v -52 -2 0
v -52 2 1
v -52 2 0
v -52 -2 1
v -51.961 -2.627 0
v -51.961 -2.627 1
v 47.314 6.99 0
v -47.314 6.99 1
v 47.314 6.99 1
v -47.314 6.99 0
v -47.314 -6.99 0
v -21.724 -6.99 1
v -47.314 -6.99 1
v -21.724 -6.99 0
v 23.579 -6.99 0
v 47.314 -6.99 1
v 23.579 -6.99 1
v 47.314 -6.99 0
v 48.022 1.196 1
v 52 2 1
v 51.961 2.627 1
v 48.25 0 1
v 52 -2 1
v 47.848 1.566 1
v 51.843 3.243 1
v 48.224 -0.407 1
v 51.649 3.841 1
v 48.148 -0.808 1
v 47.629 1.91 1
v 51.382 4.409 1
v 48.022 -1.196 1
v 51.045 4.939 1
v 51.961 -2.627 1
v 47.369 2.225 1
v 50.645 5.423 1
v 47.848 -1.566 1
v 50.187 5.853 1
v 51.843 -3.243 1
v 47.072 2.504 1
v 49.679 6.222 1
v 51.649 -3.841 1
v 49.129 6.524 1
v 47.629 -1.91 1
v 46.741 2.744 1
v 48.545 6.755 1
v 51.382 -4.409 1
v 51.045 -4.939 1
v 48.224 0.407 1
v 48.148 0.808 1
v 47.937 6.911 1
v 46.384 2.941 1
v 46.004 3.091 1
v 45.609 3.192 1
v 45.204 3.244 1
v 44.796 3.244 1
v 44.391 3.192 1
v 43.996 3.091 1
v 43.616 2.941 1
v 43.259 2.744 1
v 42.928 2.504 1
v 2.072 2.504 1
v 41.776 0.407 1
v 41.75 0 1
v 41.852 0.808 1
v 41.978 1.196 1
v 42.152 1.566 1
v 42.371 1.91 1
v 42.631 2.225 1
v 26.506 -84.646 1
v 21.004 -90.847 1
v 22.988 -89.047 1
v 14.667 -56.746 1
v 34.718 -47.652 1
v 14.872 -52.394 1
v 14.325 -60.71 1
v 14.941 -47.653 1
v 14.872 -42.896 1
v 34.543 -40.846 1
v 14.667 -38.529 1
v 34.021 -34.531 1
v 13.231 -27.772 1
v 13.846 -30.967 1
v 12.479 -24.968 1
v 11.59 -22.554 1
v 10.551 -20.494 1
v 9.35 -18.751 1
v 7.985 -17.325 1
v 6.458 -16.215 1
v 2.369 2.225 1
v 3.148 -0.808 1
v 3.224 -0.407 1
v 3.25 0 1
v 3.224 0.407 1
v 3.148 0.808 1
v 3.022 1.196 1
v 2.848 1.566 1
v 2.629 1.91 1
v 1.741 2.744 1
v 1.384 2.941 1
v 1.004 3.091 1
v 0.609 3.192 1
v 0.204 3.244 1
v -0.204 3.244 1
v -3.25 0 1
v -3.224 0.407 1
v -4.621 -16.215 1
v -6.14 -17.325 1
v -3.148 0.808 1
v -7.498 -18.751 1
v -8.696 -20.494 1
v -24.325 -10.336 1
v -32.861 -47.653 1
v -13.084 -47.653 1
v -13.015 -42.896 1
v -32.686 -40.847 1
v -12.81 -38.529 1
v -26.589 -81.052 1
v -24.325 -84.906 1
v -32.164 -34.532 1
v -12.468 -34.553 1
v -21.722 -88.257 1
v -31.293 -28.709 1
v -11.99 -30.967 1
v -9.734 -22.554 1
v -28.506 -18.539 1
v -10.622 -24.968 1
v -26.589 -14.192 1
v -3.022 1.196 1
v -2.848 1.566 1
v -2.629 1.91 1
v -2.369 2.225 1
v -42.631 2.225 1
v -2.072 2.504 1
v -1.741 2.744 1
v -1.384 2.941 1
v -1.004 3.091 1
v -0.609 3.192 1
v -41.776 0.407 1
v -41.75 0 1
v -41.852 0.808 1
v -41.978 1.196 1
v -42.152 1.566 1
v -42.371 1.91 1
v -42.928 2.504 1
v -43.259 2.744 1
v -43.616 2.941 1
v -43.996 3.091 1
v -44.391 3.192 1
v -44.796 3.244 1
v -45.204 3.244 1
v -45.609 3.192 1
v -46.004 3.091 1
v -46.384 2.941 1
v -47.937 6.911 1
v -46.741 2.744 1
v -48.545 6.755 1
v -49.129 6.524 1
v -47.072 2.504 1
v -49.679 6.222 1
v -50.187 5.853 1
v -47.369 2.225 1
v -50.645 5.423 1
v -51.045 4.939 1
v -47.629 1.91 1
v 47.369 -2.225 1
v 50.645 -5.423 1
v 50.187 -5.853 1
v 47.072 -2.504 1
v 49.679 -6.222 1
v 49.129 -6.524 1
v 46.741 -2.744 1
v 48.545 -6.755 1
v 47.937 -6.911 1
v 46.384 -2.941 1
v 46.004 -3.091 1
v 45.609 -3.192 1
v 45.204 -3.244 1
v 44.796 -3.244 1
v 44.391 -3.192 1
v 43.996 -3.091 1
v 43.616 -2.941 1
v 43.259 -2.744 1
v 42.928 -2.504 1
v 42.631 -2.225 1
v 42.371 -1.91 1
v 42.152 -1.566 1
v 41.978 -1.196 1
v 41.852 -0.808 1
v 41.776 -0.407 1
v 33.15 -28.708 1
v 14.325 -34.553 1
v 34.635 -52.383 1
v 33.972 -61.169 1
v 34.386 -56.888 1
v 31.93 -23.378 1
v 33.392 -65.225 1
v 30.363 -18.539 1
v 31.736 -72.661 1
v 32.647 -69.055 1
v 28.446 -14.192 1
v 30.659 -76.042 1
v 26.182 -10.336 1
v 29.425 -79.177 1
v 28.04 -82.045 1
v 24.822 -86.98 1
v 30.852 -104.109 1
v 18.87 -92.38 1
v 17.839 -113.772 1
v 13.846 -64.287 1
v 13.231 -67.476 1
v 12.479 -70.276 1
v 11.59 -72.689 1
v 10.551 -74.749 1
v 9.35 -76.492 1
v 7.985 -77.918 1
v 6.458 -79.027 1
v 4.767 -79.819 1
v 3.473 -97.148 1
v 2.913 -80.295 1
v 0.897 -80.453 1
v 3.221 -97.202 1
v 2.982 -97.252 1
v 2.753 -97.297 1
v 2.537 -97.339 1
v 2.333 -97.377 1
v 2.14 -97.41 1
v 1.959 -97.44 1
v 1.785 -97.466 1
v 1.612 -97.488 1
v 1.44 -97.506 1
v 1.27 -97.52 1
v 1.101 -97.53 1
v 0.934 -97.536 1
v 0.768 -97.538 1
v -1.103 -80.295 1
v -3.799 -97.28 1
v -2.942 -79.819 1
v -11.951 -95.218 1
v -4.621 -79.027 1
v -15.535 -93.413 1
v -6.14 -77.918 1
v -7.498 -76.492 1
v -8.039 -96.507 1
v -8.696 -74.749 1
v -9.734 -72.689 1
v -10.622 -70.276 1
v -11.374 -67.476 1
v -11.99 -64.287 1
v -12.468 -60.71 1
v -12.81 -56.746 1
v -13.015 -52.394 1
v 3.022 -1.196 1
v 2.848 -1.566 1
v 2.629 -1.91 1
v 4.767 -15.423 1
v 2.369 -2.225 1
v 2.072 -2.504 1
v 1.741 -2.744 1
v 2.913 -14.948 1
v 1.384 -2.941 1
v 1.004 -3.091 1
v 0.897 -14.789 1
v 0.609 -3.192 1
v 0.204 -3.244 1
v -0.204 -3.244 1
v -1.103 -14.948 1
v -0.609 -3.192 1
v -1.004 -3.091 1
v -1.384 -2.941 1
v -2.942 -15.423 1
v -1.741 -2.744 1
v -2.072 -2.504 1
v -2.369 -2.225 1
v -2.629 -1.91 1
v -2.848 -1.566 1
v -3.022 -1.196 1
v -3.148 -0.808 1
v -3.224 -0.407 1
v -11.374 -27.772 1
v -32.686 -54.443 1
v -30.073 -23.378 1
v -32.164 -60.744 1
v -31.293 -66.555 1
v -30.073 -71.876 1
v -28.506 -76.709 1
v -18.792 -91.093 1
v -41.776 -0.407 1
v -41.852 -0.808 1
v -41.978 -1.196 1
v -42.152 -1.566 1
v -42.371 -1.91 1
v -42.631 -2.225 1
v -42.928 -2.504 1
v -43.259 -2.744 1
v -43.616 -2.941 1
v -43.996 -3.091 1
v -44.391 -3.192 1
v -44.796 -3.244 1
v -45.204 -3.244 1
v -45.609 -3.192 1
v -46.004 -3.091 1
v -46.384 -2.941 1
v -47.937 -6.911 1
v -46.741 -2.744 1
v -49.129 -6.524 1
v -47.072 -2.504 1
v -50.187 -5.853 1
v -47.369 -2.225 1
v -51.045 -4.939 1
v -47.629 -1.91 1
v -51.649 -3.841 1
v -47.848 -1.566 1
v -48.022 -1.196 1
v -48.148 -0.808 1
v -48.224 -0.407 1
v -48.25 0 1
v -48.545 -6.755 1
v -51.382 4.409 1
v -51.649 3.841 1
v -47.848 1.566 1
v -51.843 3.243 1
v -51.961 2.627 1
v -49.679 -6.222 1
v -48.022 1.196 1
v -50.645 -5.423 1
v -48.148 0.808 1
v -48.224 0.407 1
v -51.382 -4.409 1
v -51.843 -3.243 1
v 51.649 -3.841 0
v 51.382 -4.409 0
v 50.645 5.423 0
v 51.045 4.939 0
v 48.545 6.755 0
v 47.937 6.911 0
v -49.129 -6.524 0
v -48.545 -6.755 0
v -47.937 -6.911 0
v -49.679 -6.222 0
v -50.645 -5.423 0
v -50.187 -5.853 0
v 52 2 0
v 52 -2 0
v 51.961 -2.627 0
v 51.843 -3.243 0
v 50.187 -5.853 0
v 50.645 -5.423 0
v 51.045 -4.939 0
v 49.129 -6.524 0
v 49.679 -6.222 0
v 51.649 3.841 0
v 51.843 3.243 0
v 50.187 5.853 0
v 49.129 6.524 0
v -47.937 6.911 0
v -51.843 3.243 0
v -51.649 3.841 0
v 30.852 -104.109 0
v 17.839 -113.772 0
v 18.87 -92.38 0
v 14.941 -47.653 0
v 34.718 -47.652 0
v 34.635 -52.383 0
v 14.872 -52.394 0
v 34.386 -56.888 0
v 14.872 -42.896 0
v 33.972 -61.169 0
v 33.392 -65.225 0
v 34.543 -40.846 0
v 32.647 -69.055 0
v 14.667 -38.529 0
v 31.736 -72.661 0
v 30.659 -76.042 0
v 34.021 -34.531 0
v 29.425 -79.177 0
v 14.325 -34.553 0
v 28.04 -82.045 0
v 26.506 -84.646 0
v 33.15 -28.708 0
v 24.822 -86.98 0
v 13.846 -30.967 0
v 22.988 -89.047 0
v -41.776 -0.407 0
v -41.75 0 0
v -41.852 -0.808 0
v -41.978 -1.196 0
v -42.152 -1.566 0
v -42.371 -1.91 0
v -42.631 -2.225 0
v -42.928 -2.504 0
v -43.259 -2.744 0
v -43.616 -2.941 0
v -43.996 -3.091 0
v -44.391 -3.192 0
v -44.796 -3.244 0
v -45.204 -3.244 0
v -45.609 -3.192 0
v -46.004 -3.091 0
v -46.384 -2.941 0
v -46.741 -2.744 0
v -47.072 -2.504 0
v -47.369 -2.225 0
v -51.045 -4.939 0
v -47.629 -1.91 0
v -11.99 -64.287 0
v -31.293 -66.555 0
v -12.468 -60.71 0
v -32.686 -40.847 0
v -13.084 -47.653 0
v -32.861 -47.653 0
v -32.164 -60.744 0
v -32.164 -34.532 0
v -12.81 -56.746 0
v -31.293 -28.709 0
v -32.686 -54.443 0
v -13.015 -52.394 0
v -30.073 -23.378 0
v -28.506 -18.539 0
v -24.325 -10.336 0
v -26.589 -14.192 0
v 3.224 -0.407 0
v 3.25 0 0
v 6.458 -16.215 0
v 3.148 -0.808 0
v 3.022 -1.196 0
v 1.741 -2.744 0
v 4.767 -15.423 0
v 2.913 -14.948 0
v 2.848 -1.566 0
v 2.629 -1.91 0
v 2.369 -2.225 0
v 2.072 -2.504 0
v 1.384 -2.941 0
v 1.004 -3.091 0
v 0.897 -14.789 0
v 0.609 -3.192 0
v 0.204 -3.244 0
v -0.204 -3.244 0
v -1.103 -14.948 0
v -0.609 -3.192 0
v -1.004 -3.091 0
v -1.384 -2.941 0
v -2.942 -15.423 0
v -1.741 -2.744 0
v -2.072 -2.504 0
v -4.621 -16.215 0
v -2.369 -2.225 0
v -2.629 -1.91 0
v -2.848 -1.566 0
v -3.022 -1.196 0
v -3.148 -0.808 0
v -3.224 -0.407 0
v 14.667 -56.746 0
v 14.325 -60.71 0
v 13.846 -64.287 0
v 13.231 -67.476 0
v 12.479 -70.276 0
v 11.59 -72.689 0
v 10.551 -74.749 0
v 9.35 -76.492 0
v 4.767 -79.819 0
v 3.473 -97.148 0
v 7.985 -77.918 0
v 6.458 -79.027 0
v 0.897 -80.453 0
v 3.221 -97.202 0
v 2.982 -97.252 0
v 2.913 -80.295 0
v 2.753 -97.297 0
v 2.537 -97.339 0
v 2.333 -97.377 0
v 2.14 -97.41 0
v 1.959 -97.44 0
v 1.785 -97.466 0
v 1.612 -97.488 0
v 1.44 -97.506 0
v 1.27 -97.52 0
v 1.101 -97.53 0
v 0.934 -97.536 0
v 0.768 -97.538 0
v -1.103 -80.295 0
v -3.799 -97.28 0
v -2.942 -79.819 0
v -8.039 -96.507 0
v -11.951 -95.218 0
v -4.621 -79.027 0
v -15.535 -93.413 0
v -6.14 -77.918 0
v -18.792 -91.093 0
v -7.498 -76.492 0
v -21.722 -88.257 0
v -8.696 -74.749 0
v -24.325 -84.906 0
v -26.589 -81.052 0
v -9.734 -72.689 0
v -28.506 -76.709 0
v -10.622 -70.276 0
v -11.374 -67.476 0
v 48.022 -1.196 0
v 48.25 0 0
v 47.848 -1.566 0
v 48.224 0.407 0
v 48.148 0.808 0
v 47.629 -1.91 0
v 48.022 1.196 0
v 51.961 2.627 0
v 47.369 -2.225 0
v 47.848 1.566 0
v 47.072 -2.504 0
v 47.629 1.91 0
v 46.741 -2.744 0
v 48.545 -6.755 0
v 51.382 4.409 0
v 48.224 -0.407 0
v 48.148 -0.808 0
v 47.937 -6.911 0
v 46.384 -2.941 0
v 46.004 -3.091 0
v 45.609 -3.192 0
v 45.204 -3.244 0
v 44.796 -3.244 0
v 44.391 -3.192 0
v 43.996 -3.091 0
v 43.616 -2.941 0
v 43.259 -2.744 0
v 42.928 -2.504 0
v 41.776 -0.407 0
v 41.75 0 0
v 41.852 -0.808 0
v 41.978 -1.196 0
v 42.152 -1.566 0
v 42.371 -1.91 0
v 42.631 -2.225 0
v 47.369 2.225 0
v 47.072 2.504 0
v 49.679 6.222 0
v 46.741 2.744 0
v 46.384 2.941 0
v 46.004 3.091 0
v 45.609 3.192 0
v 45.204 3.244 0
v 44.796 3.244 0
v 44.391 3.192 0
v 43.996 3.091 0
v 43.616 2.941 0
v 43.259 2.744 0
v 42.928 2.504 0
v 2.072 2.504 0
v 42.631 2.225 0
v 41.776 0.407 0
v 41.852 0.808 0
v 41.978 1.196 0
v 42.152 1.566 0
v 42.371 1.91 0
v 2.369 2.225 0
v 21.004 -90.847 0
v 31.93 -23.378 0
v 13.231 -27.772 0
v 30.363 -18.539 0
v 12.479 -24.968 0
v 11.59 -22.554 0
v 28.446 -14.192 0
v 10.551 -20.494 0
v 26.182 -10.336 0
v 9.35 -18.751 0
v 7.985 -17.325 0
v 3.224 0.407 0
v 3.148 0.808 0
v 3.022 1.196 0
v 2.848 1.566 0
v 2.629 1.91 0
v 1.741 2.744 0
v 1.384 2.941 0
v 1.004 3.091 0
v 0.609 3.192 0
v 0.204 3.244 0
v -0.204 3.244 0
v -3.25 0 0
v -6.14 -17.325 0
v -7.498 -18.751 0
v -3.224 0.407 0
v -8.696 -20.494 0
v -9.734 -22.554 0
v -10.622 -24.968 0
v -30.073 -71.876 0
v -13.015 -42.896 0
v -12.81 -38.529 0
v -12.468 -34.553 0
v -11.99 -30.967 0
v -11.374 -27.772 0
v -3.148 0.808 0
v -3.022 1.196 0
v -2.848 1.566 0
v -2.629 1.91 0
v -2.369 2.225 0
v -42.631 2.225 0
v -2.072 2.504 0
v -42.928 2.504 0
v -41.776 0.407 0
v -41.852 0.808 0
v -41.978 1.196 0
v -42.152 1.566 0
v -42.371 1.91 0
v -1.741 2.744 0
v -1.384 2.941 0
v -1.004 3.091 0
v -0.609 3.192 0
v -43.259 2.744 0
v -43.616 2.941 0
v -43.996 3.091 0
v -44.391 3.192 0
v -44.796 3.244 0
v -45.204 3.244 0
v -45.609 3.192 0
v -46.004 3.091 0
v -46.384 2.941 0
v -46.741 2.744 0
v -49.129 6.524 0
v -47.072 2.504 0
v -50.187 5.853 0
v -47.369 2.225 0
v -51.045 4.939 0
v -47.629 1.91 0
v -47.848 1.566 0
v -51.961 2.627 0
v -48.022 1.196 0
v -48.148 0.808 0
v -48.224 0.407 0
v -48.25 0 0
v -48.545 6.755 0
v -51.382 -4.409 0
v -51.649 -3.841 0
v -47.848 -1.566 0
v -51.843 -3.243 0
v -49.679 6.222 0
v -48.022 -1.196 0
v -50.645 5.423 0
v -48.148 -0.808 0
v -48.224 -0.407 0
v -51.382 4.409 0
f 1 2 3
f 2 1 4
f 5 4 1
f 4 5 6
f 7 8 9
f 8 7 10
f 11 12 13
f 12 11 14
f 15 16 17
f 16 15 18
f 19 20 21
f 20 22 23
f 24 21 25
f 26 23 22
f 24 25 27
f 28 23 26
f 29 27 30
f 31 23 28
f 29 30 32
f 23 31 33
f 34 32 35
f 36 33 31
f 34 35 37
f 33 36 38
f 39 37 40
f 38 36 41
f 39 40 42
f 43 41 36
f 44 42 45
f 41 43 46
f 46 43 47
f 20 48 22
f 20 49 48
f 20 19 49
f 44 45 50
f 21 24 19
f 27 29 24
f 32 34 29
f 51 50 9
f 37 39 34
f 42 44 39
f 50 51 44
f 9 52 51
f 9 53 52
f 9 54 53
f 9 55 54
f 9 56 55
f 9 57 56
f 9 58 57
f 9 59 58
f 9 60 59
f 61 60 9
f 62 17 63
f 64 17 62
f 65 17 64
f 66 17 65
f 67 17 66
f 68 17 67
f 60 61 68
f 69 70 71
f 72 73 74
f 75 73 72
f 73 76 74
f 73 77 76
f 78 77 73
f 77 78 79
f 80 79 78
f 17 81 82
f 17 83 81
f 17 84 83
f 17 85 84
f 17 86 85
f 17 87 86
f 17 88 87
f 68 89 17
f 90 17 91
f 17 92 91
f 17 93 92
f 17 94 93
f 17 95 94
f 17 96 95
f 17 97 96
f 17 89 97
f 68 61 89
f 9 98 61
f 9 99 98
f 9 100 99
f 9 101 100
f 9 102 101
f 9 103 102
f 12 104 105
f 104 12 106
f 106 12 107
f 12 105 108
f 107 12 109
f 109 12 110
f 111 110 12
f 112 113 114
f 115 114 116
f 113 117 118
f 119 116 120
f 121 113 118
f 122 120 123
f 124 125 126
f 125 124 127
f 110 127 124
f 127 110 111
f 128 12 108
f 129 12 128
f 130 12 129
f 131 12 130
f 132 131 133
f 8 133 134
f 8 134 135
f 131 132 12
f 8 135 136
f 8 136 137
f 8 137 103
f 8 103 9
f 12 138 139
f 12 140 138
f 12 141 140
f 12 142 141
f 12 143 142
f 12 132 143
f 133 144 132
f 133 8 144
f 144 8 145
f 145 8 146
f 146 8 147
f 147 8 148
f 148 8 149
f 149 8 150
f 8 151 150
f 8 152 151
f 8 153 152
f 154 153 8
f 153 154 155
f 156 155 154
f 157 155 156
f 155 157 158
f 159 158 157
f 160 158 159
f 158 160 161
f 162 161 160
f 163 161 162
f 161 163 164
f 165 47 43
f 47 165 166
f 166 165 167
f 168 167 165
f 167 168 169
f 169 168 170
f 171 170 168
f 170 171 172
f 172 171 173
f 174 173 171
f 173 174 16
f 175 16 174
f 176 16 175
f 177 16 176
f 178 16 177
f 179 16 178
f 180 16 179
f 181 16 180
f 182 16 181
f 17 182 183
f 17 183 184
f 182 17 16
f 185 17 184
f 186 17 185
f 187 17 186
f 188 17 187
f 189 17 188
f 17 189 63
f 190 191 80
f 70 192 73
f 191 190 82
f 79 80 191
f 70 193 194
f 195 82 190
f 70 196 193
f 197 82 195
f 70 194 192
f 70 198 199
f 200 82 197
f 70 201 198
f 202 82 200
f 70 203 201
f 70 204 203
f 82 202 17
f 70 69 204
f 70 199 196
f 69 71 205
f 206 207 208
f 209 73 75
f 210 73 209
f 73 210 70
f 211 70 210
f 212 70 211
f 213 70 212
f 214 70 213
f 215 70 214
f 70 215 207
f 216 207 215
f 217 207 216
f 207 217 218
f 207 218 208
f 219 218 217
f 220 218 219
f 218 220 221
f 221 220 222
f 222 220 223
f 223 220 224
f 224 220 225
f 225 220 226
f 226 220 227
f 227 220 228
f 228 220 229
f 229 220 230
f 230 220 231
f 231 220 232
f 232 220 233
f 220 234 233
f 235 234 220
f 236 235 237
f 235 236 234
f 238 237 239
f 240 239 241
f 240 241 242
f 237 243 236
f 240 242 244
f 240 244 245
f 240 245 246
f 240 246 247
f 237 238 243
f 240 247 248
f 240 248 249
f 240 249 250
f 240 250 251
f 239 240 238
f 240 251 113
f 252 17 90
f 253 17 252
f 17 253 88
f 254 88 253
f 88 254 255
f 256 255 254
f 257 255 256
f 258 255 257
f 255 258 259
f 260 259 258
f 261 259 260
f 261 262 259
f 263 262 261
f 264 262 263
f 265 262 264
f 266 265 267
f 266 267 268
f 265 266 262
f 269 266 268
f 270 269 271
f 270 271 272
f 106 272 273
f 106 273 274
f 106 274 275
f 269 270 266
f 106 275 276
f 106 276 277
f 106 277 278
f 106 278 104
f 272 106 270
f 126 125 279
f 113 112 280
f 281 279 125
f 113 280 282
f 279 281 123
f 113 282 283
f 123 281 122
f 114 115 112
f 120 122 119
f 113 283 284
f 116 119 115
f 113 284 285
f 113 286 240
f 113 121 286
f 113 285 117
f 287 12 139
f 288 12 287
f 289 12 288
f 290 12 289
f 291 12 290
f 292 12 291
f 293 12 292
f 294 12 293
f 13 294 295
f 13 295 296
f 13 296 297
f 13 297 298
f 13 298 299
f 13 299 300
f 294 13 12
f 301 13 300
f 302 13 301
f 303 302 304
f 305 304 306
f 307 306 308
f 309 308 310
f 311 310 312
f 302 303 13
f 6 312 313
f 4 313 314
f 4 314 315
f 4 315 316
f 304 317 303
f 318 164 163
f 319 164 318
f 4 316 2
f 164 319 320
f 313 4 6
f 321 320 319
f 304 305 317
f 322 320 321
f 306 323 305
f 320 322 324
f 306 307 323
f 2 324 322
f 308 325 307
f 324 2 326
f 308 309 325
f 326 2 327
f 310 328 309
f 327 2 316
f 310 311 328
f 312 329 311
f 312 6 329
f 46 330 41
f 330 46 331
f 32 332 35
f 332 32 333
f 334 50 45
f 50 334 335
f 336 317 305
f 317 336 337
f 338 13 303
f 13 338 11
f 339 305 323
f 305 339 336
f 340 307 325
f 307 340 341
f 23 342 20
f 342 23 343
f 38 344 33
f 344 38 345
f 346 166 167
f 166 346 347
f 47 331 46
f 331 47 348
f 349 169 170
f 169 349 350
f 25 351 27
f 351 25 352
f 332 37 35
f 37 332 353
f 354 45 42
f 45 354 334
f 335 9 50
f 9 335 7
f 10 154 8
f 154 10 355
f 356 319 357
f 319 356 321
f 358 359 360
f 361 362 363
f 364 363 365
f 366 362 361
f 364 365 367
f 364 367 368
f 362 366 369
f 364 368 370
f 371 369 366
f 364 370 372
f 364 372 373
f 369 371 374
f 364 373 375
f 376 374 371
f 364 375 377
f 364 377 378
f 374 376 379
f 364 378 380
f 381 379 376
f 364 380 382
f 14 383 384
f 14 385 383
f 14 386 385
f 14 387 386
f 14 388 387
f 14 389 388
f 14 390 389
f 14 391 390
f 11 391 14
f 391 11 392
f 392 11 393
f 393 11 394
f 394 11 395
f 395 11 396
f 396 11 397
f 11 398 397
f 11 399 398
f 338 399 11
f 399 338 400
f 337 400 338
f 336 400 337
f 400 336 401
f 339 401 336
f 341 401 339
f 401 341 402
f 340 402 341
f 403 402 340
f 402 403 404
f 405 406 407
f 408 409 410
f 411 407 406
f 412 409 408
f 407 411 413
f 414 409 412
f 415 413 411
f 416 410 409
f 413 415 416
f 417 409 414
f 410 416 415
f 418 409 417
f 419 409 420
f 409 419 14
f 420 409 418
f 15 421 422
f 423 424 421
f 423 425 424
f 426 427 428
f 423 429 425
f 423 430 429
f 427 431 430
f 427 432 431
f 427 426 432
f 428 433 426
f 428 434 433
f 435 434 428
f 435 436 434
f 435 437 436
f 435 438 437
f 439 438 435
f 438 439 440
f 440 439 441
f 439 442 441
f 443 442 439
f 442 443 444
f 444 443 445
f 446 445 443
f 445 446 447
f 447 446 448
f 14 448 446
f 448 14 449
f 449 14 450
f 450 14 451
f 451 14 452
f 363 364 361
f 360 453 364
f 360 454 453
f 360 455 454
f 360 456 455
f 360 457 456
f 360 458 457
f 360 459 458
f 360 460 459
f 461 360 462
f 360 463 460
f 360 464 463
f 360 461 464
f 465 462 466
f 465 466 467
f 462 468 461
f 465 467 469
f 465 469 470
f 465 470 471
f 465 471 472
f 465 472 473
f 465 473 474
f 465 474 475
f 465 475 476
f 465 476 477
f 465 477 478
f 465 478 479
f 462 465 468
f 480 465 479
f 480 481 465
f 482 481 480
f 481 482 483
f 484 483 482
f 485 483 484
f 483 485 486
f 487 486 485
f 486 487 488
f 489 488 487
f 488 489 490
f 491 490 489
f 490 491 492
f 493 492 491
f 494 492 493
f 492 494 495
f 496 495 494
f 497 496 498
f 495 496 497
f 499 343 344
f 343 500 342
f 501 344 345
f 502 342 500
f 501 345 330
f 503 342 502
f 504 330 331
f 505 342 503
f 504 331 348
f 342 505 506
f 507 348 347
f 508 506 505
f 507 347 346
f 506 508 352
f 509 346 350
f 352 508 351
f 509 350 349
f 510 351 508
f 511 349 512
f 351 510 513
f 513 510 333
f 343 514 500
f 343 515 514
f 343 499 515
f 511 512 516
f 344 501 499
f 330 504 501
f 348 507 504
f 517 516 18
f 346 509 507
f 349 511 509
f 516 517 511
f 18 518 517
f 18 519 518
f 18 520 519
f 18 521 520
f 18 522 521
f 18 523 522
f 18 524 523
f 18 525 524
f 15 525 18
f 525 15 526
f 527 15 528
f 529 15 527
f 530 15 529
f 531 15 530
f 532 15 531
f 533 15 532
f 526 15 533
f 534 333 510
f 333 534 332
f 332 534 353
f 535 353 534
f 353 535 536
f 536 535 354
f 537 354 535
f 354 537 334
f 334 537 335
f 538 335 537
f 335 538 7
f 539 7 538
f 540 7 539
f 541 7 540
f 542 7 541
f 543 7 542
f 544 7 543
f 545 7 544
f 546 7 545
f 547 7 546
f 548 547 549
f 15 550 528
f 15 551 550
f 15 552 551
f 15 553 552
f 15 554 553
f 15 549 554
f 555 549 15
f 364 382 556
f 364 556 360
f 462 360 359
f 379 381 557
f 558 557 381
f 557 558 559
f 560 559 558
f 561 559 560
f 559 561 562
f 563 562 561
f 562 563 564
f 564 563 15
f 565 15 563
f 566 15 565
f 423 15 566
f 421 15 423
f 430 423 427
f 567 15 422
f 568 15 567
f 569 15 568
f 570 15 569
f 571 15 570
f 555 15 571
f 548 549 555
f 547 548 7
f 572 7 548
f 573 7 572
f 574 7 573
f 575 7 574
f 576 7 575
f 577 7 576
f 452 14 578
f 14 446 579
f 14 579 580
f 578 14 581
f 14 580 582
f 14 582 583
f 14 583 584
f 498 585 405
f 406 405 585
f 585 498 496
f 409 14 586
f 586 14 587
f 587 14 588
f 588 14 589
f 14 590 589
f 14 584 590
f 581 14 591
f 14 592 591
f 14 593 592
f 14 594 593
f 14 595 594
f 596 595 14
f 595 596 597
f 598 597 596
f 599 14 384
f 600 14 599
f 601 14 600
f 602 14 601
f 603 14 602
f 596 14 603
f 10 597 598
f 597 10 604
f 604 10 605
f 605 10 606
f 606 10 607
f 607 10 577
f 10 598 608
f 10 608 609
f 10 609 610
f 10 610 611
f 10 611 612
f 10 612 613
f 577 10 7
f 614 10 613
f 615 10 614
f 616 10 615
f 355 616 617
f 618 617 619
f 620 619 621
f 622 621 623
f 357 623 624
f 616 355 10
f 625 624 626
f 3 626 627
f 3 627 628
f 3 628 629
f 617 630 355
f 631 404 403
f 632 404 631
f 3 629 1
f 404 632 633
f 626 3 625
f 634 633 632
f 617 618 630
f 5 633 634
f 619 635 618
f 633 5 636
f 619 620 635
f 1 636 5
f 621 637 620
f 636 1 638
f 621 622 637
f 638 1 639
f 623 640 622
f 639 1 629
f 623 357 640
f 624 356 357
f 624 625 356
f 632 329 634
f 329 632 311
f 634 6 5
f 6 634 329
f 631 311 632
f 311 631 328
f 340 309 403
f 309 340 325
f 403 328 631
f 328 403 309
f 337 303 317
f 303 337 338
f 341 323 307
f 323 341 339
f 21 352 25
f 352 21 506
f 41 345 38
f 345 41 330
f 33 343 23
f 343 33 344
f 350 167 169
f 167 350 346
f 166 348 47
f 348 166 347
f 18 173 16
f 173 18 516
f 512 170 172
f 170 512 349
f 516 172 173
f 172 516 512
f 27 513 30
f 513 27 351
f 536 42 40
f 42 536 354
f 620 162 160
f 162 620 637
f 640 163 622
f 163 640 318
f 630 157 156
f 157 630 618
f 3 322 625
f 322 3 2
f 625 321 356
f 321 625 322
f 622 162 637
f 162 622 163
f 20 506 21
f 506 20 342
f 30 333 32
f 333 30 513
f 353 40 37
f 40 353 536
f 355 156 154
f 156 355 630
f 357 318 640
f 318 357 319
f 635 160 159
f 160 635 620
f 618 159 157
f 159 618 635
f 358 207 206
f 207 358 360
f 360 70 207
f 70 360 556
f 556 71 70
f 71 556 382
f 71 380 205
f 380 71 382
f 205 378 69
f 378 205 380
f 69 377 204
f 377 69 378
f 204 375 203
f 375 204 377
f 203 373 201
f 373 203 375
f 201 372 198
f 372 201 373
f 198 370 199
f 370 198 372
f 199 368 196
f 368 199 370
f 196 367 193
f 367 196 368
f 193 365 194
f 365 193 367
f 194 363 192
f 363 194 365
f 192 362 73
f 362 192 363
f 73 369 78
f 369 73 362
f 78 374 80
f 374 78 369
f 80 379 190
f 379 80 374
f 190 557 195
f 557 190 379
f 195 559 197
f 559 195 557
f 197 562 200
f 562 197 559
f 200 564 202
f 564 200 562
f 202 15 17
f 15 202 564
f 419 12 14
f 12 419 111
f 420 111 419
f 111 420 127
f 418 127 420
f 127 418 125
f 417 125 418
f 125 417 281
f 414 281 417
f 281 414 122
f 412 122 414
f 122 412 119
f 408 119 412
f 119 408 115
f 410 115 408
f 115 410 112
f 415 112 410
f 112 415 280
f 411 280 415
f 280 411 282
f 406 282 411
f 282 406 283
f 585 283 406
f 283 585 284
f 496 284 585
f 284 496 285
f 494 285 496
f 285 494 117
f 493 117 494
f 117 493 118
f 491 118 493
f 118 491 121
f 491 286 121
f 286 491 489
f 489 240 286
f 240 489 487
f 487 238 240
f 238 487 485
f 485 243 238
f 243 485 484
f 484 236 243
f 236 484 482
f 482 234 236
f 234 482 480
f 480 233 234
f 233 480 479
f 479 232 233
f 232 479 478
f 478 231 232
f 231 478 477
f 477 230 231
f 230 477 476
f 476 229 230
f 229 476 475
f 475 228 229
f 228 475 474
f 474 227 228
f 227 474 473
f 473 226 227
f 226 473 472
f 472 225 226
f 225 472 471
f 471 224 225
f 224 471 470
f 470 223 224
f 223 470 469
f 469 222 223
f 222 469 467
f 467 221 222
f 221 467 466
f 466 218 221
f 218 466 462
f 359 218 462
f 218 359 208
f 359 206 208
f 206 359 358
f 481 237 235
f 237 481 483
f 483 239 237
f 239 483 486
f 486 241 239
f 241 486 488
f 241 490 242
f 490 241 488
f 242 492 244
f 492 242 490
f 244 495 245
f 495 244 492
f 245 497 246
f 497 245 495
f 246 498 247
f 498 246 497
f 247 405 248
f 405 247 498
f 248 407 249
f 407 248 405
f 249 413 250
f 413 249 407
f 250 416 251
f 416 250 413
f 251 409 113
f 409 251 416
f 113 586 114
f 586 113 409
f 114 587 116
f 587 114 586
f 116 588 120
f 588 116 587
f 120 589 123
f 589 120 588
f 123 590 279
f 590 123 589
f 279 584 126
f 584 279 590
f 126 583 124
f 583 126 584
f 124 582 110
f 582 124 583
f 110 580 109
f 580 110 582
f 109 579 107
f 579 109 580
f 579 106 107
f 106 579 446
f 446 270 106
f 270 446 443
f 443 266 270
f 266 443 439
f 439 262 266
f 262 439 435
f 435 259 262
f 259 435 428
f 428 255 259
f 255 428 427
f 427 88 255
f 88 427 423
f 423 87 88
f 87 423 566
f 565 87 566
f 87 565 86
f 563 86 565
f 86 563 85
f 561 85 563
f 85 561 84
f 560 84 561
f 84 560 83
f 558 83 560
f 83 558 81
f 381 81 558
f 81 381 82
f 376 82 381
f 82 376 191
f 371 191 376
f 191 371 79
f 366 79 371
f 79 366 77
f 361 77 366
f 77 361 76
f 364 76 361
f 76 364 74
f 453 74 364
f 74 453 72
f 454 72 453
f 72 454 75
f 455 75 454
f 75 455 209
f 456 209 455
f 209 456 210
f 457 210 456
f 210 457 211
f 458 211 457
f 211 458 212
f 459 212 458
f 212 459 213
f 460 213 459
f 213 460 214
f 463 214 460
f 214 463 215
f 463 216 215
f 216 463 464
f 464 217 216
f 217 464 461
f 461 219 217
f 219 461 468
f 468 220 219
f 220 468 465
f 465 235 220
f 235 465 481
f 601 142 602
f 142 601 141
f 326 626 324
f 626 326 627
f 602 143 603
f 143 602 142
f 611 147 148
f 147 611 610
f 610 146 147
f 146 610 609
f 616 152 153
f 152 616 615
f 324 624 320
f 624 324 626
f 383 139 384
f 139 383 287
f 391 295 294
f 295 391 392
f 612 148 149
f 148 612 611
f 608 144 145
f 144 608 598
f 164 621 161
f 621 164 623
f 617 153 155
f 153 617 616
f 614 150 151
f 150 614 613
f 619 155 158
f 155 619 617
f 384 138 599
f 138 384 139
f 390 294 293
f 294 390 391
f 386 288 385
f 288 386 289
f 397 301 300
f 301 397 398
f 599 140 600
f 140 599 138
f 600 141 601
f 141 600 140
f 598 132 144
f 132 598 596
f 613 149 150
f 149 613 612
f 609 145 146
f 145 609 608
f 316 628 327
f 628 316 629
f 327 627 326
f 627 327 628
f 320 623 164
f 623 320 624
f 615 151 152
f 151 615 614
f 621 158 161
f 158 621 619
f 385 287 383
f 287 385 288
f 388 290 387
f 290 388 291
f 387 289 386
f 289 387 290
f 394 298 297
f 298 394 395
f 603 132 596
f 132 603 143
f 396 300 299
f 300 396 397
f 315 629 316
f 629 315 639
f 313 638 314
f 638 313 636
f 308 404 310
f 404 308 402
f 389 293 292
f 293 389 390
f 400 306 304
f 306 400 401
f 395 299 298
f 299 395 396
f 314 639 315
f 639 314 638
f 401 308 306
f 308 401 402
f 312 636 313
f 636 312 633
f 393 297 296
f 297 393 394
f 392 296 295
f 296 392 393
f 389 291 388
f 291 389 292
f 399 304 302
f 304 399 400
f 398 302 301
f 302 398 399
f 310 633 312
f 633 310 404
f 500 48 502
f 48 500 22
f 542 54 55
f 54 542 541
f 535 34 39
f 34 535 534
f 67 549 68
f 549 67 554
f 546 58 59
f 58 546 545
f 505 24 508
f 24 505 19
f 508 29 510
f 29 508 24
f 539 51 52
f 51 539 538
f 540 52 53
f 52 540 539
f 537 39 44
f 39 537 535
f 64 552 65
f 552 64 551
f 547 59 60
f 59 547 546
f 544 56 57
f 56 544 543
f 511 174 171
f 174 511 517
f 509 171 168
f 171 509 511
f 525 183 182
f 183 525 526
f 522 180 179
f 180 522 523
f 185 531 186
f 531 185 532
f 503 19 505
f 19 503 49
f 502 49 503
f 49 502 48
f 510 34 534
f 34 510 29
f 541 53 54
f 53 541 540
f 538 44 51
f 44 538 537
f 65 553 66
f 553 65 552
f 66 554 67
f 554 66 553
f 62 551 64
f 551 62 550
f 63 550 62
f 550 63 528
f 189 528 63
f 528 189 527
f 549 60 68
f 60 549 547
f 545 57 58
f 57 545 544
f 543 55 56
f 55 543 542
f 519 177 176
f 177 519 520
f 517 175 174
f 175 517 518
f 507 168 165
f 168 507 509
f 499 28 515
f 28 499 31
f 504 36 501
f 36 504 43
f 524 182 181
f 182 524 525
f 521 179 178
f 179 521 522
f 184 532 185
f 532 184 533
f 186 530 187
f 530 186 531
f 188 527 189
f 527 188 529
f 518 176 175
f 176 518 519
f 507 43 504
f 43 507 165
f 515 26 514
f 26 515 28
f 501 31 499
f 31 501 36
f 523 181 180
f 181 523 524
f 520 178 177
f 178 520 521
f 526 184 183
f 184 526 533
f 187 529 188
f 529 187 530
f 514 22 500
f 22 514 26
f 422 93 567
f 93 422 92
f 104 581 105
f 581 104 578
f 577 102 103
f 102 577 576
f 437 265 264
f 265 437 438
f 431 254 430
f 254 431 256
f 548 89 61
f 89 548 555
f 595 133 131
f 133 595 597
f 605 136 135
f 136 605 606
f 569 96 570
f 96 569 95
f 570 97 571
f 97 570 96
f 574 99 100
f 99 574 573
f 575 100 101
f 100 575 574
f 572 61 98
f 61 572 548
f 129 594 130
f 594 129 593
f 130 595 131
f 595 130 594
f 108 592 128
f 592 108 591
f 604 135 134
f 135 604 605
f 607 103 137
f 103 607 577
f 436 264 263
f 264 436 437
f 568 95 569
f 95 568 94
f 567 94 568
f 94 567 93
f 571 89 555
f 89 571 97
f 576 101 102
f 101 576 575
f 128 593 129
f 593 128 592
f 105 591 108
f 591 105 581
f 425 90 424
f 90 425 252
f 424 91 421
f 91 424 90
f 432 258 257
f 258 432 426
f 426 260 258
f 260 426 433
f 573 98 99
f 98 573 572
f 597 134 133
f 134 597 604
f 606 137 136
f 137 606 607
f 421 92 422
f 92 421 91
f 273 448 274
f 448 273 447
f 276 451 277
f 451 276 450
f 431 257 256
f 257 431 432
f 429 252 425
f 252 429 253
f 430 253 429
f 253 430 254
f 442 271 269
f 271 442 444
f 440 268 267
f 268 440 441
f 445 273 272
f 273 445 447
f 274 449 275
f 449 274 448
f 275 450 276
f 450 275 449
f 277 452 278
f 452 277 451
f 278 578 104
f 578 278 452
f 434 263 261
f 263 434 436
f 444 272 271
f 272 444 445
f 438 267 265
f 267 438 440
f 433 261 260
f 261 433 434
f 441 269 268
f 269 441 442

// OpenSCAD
$fn = 50;


difference() {
	union() {
		translate(v = [0, 0, 0]) {
			rotate(a = [0, 0, 0]) {
				hull() {
					translate(v = [-47.0000000000, 2.0000000000, 0]) {
						rotate(a = [0, 0, 0]) {
							translate(v = [0, 0, 0]) {
								rotate(a = [0, 0, 0]) {
									cylinder(h = 1, r = 5);
								}
							}
						}
					}
					translate(v = [47.0000000000, 2.0000000000, 0]) {
						rotate(a = [0, 0, 0]) {
							translate(v = [0, 0, 0]) {
								rotate(a = [0, 0, 0]) {
									cylinder(h = 1, r = 5);
								}
							}
						}
					}
					translate(v = [-47.0000000000, -2.0000000000, 0]) {
						rotate(a = [0, 0, 0]) {
							translate(v = [0, 0, 0]) {
								rotate(a = [0, 0, 0]) {
									cylinder(h = 1, r = 5);
								}
							}
						}
					}
					translate(v = [47.0000000000, -2.0000000000, 0]) {
						rotate(a = [0, 0, 0]) {
							translate(v = [0, 0, 0]) {
								rotate(a = [0, 0, 0]) {
									cylinder(h = 1, r = 5);
								}
							}
						}
					}
				}
			}
		}
		translate(v = [0, 0, 0]) {
			rotate(a = [0, 0, 0]) {
				linear_extrude(height = 1) {
					text(font = "DejaVu Sans Mono:style=Bold", halign = "center", size = 95.0000000000, text = "Q", valign = "top");
				}
			}
		}
	}
	union() {
		translate(v = [-45.0000000000, 0.0000000000, -125.0000000000]) {
			rotate(a = [0, 0, 0]) {
				cylinder(h = 250, r = 3.2500000000);
			}
		}
		translate(v = [45.0000000000, 0.0000000000, -125.0000000000]) {
			rotate(a = [0, 0, 0]) {
				cylinder(h = 250, r = 3.2500000000);
			}
		}
		translate(v = [45.0000000000, 0.0000000000, -125.0000000000]) {
			rotate(a = [0, 0, 0]) {
				cylinder(h = 250, r = 3.2500000000);
			}
		}
		translate(v = [0, 0, -125.0000000000]) {
			rotate(a = [0, 0, 0]) {
				cylinder(h = 250, r = 3.2500000000);
			}
		}
	}
}
